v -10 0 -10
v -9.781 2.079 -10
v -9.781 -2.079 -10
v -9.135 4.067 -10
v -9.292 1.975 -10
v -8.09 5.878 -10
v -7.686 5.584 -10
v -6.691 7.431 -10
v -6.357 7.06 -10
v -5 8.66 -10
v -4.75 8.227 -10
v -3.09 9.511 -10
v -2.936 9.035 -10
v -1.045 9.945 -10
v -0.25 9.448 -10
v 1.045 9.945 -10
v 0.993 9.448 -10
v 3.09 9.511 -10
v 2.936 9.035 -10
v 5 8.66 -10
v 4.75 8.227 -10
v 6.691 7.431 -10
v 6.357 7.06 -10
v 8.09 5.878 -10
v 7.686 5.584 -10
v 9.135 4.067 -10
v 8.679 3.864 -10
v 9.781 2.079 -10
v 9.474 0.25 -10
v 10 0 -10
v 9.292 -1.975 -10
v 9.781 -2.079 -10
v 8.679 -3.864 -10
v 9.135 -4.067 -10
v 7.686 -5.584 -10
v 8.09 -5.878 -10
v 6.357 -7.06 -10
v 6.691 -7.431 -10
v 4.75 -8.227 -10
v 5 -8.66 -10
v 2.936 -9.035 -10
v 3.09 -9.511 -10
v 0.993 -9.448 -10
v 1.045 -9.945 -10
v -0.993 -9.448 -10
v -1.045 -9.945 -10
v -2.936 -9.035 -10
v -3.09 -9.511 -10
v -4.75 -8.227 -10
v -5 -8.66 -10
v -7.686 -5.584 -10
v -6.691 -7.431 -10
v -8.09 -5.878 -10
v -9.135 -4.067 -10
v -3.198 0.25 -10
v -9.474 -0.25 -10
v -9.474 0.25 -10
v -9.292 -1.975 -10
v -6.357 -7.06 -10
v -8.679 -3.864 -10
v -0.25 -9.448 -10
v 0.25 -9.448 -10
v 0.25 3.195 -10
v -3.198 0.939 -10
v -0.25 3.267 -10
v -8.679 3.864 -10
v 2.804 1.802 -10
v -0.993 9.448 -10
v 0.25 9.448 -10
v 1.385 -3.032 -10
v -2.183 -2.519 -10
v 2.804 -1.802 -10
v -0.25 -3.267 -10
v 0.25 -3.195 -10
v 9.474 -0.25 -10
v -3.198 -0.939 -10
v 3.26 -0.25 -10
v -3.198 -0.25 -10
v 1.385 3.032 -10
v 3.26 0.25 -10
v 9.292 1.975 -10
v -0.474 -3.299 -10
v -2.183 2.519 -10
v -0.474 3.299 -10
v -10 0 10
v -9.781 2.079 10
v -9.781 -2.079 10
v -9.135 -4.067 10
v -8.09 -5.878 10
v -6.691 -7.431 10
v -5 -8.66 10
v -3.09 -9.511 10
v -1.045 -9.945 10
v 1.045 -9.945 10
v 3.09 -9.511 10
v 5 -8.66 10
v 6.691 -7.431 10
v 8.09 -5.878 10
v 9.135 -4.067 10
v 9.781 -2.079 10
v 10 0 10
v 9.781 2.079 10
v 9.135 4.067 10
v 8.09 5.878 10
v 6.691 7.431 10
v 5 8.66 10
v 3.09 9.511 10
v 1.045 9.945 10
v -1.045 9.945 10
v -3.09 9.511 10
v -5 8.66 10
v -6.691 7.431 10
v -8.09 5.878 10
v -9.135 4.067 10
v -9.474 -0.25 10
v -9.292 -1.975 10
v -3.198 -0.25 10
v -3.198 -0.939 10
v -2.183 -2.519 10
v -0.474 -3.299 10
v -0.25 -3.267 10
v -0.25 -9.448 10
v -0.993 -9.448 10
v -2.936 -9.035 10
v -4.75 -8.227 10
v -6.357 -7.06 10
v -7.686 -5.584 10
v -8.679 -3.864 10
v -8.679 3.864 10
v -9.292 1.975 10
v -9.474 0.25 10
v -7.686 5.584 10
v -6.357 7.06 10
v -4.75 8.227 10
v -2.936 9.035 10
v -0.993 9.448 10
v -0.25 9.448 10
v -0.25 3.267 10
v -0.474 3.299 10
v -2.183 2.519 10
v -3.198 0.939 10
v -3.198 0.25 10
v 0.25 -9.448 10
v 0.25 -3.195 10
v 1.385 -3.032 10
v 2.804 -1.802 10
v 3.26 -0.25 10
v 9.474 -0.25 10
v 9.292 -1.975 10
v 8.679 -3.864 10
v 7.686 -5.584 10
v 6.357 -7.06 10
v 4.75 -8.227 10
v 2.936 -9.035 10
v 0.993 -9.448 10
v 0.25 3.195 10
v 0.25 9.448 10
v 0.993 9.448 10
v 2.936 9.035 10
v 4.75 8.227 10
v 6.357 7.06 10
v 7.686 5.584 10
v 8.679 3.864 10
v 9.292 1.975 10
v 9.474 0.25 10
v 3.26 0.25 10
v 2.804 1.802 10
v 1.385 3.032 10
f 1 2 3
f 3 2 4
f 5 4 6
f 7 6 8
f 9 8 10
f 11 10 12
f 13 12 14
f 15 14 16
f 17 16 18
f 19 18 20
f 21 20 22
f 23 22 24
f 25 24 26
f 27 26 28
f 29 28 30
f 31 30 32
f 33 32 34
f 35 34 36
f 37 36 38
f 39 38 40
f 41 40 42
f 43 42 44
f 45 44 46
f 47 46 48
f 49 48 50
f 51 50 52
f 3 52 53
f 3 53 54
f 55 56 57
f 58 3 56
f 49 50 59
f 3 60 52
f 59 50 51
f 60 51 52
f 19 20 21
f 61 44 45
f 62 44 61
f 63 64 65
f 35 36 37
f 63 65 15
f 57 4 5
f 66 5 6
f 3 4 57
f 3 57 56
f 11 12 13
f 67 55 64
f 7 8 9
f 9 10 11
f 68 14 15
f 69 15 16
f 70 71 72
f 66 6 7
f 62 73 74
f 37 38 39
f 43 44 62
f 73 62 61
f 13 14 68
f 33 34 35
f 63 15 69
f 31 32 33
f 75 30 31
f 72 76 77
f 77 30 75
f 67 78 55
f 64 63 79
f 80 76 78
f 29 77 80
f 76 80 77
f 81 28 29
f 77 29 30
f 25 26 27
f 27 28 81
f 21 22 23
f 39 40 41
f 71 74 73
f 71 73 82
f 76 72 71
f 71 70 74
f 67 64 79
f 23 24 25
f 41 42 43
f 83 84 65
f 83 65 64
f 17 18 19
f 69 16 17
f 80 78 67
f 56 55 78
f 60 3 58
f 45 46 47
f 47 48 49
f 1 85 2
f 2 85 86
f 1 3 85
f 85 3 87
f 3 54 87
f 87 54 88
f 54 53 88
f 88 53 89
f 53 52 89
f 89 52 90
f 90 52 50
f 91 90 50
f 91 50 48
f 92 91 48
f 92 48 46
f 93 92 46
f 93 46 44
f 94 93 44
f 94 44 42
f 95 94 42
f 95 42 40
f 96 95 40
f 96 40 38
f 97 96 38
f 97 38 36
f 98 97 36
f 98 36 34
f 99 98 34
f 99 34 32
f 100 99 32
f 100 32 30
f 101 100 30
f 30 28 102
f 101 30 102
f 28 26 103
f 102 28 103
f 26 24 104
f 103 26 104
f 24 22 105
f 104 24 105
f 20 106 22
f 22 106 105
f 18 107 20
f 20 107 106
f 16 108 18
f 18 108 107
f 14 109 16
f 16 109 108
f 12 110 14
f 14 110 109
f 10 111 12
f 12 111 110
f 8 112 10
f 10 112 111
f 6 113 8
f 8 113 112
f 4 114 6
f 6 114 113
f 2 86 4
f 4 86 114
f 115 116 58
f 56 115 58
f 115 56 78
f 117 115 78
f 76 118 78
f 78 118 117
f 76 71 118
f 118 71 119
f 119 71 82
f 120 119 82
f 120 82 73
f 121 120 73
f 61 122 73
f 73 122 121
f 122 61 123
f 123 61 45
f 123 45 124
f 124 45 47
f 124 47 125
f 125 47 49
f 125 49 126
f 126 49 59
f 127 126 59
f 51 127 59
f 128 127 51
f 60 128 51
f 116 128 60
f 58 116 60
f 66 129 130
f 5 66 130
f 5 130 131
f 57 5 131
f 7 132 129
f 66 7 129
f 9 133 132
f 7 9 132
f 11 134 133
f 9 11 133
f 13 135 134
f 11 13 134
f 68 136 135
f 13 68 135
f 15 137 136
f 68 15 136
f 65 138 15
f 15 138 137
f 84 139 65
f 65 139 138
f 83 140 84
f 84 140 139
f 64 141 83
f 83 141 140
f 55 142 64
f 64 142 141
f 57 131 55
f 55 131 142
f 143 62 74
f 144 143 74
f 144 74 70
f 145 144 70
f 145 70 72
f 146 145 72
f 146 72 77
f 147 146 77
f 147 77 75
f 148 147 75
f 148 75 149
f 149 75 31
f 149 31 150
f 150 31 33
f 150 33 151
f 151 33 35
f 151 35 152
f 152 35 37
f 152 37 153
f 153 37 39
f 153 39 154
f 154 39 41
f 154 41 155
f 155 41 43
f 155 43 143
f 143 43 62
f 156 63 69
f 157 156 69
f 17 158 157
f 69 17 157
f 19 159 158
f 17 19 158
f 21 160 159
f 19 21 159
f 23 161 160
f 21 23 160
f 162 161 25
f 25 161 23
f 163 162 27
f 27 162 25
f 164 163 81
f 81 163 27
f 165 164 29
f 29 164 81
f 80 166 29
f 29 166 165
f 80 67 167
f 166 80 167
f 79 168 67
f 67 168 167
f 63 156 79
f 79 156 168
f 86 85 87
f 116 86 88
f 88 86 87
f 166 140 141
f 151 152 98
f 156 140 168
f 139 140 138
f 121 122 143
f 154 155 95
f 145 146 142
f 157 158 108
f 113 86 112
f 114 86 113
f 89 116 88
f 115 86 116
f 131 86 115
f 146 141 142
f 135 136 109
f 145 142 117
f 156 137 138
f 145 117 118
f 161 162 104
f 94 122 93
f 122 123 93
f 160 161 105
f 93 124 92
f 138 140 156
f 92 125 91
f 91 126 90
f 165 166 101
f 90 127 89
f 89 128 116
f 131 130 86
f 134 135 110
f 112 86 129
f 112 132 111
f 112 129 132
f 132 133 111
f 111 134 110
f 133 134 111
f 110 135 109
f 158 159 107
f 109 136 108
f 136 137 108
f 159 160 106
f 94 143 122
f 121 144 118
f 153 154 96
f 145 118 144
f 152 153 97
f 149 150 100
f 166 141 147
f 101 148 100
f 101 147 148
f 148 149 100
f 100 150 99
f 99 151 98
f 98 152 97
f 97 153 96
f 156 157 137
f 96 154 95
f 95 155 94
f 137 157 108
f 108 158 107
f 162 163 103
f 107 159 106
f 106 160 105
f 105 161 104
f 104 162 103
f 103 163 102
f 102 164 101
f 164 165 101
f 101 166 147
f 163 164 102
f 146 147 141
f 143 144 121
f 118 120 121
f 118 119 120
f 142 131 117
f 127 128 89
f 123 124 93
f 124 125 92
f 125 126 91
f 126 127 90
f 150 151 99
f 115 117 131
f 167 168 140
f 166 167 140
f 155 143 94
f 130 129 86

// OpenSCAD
h = 20;
raio = 10; 

difference(){
 cylinder(h, r=raio, center=true);
 cylinder(h+1, r=raio-0.5, center=true);
}

cylinder(h, r=raio/3, center=true);

cLargura = 0.5;
cComprimento = 2*raio-1; 

cube([cLargura,cComprimento,h],true);

cube([cComprimento,cLargura,h],true);
